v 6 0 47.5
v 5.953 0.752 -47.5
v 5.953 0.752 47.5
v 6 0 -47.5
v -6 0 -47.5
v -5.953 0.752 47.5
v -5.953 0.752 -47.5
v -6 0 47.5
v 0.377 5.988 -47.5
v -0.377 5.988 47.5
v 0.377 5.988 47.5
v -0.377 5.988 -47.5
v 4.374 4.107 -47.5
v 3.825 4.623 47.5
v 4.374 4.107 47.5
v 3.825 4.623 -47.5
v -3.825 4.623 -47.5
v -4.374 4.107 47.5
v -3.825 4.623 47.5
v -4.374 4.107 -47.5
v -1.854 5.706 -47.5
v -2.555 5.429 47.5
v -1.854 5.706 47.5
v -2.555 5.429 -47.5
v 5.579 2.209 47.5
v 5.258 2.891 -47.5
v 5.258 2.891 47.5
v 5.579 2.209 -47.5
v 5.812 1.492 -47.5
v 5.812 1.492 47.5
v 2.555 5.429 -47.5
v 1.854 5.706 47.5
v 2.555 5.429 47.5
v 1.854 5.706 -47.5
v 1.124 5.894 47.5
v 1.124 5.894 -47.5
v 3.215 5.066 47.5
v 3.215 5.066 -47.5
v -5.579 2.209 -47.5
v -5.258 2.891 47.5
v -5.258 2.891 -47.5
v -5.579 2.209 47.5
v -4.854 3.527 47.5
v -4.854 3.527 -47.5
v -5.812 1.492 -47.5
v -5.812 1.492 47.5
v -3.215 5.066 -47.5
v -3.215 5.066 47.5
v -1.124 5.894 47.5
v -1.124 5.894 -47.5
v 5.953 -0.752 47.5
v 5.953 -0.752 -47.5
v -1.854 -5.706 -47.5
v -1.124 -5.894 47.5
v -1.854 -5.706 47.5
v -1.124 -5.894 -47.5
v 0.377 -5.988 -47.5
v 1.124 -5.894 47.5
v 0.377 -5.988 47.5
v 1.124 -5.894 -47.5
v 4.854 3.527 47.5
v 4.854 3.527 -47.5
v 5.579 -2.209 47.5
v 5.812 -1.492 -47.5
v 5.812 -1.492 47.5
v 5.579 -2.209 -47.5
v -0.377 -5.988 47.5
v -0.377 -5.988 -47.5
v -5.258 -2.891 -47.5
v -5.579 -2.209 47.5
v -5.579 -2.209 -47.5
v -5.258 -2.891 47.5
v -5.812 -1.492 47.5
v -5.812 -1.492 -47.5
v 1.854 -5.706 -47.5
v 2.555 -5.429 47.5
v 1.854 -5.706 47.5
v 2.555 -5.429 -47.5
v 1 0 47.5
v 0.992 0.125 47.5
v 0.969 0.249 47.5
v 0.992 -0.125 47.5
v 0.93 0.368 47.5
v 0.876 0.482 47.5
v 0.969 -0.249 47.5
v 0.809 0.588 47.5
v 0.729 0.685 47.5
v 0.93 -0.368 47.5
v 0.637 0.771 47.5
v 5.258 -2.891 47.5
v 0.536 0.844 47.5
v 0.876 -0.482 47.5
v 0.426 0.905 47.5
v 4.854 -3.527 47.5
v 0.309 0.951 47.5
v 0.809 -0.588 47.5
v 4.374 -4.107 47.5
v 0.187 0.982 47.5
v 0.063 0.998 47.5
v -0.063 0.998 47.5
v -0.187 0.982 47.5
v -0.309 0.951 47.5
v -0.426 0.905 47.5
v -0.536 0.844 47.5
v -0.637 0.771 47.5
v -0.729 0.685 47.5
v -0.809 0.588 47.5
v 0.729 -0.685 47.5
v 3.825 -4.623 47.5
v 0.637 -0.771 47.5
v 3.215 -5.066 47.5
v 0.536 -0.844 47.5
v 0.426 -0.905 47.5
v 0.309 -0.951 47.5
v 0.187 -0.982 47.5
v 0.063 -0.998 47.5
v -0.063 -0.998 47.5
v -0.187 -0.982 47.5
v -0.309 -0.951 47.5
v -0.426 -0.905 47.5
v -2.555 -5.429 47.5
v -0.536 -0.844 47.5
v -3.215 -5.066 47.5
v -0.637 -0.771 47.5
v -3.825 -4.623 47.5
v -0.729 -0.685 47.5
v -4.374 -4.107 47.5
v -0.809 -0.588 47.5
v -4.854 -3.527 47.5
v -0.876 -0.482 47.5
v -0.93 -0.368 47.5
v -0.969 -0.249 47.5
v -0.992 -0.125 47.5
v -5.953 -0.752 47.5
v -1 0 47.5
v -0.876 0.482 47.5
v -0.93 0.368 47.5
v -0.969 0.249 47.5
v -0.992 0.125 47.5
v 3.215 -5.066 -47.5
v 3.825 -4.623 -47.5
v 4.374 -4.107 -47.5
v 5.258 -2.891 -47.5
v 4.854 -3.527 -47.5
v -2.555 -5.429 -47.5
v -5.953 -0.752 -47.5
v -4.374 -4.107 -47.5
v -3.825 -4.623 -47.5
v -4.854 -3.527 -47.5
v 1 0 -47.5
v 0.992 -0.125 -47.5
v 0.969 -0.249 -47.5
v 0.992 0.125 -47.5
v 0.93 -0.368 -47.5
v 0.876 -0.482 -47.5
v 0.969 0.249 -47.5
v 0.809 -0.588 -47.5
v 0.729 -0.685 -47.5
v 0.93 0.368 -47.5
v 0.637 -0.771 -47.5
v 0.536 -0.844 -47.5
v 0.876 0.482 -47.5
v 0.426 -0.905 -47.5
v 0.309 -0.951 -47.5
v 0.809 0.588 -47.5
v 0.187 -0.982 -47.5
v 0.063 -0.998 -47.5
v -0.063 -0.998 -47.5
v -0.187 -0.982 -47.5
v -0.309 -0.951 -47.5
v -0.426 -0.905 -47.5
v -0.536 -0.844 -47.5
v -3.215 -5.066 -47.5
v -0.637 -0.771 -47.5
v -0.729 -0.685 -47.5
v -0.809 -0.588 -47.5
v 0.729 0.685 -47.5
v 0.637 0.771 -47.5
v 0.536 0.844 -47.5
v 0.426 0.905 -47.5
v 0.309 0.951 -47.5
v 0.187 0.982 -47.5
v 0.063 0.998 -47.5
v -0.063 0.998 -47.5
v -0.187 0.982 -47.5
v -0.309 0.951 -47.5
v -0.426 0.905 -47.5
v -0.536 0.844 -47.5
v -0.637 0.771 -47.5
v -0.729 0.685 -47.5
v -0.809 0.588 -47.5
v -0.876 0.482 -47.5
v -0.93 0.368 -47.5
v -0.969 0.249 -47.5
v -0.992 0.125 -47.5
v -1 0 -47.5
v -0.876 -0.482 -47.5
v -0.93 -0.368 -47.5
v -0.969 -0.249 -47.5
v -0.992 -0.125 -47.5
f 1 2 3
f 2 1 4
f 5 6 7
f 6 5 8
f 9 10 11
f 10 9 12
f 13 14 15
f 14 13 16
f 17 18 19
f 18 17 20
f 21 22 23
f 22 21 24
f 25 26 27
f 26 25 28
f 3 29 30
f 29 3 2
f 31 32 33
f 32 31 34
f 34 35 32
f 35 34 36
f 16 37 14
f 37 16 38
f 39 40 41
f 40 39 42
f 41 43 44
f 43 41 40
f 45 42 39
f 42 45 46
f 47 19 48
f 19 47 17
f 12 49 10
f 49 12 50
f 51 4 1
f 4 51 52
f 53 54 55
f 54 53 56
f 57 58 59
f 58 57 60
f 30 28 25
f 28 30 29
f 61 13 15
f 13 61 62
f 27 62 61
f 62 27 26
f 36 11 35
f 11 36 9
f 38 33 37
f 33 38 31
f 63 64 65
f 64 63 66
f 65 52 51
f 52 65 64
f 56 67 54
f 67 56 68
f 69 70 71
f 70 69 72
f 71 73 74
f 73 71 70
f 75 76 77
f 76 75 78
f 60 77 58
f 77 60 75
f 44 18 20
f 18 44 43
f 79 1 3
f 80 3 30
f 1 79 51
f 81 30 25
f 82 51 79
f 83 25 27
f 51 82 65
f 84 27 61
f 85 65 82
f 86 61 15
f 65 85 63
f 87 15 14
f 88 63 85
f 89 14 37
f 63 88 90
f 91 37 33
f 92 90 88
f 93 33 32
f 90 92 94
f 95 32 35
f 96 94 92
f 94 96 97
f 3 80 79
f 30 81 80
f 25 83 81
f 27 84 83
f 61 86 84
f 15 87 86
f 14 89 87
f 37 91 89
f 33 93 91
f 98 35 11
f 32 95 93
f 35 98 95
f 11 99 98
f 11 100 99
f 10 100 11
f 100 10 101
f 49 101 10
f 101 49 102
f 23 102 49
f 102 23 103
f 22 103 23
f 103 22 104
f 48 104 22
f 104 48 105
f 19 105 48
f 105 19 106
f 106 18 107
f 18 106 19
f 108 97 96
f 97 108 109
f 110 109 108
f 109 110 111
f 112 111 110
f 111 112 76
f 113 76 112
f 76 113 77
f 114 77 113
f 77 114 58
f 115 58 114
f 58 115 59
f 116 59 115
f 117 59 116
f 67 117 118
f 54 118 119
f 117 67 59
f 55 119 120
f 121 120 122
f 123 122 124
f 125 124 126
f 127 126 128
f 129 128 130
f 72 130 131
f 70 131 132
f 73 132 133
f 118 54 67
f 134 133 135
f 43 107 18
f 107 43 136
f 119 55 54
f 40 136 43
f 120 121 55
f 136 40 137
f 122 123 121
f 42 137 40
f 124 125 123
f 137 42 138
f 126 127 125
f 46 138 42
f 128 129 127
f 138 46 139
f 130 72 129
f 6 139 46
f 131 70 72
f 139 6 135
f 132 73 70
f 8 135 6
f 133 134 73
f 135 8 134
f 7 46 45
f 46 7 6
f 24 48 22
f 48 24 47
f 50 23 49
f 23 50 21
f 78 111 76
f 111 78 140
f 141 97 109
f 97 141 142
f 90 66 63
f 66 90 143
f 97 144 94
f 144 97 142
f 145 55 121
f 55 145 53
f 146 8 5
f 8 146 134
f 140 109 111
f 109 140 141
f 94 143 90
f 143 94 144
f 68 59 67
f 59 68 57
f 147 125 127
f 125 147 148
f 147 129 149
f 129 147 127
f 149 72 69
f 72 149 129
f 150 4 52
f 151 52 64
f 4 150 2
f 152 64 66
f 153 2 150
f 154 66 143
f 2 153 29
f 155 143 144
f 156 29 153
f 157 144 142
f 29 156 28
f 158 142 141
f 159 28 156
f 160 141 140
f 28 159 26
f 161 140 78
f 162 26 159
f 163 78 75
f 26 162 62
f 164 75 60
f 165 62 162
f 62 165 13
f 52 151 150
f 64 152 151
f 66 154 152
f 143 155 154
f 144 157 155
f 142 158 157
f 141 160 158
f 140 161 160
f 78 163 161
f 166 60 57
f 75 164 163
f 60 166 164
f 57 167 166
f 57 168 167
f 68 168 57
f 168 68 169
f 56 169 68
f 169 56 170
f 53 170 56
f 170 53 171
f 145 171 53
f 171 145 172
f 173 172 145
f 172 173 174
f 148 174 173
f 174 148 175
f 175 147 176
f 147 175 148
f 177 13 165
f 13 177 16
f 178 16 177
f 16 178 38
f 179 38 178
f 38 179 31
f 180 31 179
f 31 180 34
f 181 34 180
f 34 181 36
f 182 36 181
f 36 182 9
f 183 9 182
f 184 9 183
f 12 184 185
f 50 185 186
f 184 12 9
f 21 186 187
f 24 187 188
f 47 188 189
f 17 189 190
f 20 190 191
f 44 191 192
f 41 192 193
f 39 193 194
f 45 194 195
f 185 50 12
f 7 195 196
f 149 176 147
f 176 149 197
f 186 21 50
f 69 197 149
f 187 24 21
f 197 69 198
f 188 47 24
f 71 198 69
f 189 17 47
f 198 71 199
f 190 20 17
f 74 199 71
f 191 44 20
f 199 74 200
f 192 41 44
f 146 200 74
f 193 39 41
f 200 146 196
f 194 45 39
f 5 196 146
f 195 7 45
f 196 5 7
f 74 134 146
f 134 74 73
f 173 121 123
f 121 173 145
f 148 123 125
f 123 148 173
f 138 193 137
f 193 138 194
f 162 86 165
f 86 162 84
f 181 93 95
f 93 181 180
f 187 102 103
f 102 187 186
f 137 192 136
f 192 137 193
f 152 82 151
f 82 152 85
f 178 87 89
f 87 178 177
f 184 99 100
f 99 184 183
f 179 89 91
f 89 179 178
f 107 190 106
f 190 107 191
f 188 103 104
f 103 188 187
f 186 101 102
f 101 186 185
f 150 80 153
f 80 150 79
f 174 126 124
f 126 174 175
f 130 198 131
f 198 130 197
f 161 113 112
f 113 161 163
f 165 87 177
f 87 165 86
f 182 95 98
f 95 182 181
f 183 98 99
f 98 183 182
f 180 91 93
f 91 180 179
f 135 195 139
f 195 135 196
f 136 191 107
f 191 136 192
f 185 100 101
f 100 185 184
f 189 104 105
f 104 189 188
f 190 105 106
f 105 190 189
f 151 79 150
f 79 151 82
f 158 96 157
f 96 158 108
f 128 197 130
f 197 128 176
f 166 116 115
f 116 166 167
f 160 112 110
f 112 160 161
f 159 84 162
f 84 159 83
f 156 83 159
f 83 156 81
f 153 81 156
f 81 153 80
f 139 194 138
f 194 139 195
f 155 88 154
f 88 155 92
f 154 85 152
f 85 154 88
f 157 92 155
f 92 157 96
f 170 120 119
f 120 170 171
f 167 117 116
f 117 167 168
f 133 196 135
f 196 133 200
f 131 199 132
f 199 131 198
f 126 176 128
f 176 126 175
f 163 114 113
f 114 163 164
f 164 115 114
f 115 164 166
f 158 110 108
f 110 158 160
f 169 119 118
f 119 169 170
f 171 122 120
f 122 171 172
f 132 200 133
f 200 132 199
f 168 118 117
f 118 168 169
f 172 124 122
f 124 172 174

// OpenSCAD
$fn = 50;


difference() {
	union() {
		translate(v = [0, 0, -47.5000000000]) {
			cylinder(h = 95, r = 6.0000000000);
		}
	}
	union() {
		translate(v = [0, 0, -100.0000000000]) {
			cylinder(h = 200, r = 1.0000000000);
		}
	}
}
